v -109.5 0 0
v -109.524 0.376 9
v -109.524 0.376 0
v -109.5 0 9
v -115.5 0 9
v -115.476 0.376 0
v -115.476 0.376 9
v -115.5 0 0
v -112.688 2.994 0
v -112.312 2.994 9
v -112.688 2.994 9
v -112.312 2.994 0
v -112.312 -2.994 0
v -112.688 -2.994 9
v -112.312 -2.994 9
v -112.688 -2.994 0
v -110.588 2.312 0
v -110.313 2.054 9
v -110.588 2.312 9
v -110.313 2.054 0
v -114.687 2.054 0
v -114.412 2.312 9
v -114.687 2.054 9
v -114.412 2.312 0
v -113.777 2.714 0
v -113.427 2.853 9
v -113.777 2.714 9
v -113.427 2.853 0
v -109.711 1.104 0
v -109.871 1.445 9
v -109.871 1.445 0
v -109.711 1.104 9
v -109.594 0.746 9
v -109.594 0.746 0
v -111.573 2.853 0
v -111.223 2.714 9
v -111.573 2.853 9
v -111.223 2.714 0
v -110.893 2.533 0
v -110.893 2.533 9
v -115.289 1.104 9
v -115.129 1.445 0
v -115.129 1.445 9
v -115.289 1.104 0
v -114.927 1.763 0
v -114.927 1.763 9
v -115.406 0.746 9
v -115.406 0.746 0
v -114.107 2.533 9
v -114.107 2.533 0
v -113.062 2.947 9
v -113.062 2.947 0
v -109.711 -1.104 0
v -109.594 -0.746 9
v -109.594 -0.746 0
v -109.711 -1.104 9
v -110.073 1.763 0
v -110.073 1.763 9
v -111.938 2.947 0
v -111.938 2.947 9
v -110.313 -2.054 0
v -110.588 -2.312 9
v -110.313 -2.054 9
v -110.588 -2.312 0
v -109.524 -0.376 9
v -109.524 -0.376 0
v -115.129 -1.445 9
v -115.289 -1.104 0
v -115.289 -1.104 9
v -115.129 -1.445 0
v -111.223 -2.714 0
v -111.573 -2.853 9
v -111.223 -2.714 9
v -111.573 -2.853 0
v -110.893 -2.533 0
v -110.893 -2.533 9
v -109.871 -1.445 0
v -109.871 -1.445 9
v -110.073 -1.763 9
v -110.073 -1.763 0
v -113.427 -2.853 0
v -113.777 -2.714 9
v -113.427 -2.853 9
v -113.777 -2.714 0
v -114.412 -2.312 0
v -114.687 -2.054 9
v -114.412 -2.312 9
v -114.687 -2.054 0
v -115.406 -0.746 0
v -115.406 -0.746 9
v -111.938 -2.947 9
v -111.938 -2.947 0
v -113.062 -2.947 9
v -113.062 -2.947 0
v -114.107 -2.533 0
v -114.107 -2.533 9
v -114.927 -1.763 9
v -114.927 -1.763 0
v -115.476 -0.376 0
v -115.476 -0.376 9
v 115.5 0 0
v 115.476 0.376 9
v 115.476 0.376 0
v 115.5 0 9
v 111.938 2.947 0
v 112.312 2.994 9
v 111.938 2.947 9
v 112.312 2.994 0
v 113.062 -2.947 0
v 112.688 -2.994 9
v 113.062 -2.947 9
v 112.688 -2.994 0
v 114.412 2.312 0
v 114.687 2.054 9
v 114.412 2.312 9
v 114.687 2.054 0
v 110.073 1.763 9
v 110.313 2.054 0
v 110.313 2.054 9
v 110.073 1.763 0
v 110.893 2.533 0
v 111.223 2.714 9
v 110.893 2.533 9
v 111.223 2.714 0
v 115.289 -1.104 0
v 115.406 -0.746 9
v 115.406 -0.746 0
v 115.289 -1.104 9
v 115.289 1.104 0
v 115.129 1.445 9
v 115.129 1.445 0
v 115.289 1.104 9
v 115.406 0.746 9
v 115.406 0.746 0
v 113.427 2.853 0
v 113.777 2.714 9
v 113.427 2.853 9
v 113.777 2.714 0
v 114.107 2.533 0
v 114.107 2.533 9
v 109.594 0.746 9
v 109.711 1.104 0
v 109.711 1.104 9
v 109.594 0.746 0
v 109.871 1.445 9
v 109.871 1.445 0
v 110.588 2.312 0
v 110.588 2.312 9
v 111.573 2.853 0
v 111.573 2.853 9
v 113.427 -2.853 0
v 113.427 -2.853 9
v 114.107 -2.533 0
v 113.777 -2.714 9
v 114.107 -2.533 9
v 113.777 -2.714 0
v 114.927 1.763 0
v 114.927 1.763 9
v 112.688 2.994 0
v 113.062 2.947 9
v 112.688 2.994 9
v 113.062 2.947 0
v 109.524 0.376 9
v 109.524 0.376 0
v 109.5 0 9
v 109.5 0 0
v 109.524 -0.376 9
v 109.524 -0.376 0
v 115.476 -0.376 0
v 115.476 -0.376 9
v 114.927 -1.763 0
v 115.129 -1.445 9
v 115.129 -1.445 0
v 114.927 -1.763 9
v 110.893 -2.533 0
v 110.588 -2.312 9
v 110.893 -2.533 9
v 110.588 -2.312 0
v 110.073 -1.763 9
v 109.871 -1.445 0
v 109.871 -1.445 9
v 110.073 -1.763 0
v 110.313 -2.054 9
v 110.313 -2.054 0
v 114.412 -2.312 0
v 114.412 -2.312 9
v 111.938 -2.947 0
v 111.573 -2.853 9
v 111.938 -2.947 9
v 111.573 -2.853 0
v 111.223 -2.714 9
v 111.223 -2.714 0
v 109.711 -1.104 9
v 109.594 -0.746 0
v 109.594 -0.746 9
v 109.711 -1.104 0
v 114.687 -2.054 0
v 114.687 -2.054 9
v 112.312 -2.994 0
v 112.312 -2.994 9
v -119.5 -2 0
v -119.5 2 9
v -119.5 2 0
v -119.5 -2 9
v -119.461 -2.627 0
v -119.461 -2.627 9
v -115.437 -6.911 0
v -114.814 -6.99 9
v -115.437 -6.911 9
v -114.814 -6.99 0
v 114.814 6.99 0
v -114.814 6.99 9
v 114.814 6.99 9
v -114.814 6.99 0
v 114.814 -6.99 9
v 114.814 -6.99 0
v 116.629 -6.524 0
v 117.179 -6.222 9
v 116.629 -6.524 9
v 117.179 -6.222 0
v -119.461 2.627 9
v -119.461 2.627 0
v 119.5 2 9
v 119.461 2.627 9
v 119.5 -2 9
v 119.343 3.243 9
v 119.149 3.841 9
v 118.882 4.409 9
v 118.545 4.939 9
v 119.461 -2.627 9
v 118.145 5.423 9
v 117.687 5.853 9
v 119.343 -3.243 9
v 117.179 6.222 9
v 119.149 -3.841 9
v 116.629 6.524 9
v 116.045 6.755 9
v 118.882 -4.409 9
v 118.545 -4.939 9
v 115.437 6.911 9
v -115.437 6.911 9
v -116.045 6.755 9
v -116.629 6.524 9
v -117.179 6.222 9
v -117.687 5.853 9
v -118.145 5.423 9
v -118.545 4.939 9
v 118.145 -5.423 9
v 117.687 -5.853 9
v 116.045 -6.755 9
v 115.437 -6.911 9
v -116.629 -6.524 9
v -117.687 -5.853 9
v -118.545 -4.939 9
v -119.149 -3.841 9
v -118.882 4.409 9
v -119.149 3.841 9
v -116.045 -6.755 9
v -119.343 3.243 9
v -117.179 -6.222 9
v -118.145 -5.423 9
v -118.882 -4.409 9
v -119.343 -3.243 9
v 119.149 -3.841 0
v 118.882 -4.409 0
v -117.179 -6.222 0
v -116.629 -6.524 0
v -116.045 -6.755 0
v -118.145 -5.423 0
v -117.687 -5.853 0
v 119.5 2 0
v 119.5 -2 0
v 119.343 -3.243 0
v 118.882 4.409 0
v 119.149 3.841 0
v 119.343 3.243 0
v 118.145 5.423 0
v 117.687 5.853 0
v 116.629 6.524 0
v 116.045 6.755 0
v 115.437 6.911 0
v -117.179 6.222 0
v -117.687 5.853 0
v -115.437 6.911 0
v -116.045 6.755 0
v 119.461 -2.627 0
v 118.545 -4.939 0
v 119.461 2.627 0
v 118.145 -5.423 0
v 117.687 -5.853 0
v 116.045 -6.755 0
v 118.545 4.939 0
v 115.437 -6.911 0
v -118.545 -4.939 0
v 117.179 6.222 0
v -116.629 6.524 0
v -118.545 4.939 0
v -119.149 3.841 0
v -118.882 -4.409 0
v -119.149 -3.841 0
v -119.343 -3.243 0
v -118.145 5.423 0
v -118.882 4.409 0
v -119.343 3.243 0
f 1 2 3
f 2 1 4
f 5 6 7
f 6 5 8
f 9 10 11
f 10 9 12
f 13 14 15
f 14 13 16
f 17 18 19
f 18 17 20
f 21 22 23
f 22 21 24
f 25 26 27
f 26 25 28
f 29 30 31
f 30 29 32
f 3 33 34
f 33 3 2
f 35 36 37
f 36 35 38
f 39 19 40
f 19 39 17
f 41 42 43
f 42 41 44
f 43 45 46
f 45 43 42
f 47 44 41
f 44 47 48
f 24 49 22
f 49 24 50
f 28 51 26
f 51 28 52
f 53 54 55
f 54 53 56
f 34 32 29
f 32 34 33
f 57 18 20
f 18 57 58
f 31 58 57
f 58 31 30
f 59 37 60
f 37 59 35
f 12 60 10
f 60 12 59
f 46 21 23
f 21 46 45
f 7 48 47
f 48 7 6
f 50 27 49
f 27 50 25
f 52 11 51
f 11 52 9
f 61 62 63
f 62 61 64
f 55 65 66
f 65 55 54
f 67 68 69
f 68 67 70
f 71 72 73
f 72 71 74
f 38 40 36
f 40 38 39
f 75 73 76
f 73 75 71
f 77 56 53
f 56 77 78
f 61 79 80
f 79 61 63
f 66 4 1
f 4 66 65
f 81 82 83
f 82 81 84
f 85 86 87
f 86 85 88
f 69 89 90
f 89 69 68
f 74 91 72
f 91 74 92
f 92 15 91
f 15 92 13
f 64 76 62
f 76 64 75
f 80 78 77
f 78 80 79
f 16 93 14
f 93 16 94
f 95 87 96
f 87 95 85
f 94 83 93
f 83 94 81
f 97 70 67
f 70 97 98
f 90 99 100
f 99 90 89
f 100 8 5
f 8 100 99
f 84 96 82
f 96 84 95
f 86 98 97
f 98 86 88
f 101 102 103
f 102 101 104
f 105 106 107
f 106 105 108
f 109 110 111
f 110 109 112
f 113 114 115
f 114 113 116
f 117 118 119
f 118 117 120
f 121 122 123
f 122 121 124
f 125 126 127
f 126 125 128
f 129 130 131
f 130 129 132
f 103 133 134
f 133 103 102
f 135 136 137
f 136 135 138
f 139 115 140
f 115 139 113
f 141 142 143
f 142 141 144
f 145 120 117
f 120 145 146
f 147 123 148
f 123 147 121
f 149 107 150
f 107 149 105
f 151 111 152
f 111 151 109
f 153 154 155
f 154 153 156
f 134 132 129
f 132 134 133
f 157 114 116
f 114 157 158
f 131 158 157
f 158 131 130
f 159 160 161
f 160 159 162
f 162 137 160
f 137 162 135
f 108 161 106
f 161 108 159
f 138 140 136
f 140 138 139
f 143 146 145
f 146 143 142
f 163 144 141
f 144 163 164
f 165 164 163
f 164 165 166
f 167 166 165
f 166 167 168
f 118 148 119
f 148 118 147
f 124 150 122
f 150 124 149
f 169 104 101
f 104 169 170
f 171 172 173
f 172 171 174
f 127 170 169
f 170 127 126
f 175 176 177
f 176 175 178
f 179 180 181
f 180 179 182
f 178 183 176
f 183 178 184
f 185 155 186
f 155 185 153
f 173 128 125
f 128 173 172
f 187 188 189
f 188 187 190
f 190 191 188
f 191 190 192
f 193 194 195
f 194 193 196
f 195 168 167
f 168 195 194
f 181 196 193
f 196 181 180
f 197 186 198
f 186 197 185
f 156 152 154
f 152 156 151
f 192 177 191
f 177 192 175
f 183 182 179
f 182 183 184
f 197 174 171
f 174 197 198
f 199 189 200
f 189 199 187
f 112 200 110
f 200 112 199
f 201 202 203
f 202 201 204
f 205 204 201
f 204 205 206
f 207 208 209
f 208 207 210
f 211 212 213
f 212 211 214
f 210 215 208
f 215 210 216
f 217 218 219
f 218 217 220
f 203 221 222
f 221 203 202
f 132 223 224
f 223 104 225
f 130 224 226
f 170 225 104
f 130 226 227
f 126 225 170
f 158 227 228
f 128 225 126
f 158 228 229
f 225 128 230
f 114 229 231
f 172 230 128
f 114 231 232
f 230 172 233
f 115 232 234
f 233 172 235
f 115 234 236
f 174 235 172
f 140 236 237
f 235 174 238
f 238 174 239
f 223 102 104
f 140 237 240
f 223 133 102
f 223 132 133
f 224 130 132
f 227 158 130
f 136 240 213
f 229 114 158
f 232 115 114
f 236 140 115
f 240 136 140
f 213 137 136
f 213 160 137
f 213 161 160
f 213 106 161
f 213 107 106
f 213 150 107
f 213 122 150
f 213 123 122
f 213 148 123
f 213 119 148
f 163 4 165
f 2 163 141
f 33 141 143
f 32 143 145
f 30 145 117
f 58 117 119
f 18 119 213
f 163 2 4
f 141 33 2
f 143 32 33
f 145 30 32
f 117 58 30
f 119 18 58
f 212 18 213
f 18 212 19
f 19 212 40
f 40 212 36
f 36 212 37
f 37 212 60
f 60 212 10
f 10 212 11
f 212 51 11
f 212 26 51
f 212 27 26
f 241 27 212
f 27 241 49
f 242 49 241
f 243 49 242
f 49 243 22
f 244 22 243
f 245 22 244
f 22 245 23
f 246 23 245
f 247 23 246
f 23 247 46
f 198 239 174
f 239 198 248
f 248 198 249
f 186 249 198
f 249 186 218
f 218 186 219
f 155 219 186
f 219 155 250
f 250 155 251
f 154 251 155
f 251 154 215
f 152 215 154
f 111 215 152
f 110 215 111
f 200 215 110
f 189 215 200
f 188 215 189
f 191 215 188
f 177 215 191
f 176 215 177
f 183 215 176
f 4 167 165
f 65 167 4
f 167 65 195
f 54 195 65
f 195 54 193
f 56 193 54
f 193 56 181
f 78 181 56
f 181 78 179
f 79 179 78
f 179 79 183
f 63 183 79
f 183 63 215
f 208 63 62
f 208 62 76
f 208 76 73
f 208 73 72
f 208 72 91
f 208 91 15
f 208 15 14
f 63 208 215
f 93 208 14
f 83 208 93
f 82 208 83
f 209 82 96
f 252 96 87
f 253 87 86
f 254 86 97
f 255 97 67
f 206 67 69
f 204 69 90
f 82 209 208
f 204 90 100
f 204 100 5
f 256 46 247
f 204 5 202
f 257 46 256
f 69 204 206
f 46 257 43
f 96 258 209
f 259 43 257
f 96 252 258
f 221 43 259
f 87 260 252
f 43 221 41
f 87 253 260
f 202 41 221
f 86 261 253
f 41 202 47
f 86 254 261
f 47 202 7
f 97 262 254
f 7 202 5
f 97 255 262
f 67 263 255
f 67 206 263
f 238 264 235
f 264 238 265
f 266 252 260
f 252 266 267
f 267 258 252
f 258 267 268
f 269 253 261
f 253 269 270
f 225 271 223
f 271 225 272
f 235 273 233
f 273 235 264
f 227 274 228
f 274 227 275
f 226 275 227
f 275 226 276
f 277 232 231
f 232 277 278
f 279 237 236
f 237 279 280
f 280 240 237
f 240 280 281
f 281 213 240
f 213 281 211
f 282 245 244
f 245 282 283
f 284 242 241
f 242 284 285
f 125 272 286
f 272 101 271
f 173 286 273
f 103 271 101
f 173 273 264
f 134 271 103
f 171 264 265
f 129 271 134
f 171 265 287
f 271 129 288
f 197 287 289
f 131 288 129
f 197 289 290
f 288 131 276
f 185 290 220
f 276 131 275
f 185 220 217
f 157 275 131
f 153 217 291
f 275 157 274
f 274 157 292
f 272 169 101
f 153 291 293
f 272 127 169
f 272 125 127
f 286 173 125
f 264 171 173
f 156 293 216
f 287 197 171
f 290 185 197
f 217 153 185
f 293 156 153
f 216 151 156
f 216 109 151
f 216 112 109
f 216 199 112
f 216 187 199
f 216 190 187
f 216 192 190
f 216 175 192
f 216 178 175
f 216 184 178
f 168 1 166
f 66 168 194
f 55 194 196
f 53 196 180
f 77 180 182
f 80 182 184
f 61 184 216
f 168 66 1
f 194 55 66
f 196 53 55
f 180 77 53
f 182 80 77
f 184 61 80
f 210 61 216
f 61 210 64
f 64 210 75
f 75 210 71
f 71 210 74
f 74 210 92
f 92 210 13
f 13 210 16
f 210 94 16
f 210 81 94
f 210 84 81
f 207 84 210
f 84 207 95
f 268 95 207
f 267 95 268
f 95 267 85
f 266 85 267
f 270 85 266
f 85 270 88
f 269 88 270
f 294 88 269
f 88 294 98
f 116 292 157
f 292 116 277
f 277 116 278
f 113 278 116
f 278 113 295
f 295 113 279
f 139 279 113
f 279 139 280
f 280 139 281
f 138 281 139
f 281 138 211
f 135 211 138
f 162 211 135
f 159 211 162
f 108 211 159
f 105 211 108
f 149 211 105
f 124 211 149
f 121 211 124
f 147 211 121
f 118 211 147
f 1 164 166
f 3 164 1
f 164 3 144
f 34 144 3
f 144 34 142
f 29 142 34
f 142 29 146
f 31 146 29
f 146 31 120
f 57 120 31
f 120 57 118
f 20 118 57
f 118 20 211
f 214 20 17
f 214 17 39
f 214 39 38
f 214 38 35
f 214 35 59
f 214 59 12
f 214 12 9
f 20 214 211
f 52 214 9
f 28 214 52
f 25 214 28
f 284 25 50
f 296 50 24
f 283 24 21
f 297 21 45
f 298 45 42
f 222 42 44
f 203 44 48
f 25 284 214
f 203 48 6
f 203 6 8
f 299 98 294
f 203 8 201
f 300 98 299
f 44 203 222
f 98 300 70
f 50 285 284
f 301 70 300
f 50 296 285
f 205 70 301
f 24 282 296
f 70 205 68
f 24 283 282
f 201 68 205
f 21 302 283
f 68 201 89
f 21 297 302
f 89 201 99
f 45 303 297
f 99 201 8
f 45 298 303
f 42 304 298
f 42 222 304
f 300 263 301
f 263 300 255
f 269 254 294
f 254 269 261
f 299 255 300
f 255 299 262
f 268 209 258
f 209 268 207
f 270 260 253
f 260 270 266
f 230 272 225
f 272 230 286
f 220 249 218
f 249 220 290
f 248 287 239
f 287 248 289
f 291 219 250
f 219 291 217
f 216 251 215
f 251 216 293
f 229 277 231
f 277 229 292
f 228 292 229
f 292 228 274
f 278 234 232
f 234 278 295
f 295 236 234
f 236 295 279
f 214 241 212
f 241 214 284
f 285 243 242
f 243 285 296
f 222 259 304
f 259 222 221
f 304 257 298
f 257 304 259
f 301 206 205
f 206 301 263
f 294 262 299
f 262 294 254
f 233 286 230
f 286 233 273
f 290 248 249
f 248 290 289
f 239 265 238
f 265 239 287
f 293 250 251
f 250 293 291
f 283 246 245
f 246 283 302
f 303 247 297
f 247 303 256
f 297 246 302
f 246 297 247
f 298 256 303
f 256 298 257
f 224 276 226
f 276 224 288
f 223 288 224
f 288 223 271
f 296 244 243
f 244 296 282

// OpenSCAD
$fn = 50;


difference() {
	union() {
		hull() {
			translate(v = [-114.5000000000, 2.0000000000, 0]) {
				cylinder(h = 9, r = 5);
			}
			translate(v = [114.5000000000, 2.0000000000, 0]) {
				cylinder(h = 9, r = 5);
			}
			translate(v = [-114.5000000000, -2.0000000000, 0]) {
				cylinder(h = 9, r = 5);
			}
			translate(v = [114.5000000000, -2.0000000000, 0]) {
				cylinder(h = 9, r = 5);
			}
		}
	}
	union() {
		translate(v = [-112.5000000000, 0.0000000000, -100.0000000000]) {
			cylinder(h = 200, r = 3.0000000000);
		}
		translate(v = [-112.5000000000, 0.0000000000, -100.0000000000]) {
			cylinder(h = 200, r = 3.0000000000);
		}
		translate(v = [112.5000000000, 0.0000000000, -100.0000000000]) {
			cylinder(h = 200, r = 3.0000000000);
		}
		translate(v = [112.5000000000, 0.0000000000, -100.0000000000]) {
			cylinder(h = 200, r = 3.0000000000);
		}
	}
}
